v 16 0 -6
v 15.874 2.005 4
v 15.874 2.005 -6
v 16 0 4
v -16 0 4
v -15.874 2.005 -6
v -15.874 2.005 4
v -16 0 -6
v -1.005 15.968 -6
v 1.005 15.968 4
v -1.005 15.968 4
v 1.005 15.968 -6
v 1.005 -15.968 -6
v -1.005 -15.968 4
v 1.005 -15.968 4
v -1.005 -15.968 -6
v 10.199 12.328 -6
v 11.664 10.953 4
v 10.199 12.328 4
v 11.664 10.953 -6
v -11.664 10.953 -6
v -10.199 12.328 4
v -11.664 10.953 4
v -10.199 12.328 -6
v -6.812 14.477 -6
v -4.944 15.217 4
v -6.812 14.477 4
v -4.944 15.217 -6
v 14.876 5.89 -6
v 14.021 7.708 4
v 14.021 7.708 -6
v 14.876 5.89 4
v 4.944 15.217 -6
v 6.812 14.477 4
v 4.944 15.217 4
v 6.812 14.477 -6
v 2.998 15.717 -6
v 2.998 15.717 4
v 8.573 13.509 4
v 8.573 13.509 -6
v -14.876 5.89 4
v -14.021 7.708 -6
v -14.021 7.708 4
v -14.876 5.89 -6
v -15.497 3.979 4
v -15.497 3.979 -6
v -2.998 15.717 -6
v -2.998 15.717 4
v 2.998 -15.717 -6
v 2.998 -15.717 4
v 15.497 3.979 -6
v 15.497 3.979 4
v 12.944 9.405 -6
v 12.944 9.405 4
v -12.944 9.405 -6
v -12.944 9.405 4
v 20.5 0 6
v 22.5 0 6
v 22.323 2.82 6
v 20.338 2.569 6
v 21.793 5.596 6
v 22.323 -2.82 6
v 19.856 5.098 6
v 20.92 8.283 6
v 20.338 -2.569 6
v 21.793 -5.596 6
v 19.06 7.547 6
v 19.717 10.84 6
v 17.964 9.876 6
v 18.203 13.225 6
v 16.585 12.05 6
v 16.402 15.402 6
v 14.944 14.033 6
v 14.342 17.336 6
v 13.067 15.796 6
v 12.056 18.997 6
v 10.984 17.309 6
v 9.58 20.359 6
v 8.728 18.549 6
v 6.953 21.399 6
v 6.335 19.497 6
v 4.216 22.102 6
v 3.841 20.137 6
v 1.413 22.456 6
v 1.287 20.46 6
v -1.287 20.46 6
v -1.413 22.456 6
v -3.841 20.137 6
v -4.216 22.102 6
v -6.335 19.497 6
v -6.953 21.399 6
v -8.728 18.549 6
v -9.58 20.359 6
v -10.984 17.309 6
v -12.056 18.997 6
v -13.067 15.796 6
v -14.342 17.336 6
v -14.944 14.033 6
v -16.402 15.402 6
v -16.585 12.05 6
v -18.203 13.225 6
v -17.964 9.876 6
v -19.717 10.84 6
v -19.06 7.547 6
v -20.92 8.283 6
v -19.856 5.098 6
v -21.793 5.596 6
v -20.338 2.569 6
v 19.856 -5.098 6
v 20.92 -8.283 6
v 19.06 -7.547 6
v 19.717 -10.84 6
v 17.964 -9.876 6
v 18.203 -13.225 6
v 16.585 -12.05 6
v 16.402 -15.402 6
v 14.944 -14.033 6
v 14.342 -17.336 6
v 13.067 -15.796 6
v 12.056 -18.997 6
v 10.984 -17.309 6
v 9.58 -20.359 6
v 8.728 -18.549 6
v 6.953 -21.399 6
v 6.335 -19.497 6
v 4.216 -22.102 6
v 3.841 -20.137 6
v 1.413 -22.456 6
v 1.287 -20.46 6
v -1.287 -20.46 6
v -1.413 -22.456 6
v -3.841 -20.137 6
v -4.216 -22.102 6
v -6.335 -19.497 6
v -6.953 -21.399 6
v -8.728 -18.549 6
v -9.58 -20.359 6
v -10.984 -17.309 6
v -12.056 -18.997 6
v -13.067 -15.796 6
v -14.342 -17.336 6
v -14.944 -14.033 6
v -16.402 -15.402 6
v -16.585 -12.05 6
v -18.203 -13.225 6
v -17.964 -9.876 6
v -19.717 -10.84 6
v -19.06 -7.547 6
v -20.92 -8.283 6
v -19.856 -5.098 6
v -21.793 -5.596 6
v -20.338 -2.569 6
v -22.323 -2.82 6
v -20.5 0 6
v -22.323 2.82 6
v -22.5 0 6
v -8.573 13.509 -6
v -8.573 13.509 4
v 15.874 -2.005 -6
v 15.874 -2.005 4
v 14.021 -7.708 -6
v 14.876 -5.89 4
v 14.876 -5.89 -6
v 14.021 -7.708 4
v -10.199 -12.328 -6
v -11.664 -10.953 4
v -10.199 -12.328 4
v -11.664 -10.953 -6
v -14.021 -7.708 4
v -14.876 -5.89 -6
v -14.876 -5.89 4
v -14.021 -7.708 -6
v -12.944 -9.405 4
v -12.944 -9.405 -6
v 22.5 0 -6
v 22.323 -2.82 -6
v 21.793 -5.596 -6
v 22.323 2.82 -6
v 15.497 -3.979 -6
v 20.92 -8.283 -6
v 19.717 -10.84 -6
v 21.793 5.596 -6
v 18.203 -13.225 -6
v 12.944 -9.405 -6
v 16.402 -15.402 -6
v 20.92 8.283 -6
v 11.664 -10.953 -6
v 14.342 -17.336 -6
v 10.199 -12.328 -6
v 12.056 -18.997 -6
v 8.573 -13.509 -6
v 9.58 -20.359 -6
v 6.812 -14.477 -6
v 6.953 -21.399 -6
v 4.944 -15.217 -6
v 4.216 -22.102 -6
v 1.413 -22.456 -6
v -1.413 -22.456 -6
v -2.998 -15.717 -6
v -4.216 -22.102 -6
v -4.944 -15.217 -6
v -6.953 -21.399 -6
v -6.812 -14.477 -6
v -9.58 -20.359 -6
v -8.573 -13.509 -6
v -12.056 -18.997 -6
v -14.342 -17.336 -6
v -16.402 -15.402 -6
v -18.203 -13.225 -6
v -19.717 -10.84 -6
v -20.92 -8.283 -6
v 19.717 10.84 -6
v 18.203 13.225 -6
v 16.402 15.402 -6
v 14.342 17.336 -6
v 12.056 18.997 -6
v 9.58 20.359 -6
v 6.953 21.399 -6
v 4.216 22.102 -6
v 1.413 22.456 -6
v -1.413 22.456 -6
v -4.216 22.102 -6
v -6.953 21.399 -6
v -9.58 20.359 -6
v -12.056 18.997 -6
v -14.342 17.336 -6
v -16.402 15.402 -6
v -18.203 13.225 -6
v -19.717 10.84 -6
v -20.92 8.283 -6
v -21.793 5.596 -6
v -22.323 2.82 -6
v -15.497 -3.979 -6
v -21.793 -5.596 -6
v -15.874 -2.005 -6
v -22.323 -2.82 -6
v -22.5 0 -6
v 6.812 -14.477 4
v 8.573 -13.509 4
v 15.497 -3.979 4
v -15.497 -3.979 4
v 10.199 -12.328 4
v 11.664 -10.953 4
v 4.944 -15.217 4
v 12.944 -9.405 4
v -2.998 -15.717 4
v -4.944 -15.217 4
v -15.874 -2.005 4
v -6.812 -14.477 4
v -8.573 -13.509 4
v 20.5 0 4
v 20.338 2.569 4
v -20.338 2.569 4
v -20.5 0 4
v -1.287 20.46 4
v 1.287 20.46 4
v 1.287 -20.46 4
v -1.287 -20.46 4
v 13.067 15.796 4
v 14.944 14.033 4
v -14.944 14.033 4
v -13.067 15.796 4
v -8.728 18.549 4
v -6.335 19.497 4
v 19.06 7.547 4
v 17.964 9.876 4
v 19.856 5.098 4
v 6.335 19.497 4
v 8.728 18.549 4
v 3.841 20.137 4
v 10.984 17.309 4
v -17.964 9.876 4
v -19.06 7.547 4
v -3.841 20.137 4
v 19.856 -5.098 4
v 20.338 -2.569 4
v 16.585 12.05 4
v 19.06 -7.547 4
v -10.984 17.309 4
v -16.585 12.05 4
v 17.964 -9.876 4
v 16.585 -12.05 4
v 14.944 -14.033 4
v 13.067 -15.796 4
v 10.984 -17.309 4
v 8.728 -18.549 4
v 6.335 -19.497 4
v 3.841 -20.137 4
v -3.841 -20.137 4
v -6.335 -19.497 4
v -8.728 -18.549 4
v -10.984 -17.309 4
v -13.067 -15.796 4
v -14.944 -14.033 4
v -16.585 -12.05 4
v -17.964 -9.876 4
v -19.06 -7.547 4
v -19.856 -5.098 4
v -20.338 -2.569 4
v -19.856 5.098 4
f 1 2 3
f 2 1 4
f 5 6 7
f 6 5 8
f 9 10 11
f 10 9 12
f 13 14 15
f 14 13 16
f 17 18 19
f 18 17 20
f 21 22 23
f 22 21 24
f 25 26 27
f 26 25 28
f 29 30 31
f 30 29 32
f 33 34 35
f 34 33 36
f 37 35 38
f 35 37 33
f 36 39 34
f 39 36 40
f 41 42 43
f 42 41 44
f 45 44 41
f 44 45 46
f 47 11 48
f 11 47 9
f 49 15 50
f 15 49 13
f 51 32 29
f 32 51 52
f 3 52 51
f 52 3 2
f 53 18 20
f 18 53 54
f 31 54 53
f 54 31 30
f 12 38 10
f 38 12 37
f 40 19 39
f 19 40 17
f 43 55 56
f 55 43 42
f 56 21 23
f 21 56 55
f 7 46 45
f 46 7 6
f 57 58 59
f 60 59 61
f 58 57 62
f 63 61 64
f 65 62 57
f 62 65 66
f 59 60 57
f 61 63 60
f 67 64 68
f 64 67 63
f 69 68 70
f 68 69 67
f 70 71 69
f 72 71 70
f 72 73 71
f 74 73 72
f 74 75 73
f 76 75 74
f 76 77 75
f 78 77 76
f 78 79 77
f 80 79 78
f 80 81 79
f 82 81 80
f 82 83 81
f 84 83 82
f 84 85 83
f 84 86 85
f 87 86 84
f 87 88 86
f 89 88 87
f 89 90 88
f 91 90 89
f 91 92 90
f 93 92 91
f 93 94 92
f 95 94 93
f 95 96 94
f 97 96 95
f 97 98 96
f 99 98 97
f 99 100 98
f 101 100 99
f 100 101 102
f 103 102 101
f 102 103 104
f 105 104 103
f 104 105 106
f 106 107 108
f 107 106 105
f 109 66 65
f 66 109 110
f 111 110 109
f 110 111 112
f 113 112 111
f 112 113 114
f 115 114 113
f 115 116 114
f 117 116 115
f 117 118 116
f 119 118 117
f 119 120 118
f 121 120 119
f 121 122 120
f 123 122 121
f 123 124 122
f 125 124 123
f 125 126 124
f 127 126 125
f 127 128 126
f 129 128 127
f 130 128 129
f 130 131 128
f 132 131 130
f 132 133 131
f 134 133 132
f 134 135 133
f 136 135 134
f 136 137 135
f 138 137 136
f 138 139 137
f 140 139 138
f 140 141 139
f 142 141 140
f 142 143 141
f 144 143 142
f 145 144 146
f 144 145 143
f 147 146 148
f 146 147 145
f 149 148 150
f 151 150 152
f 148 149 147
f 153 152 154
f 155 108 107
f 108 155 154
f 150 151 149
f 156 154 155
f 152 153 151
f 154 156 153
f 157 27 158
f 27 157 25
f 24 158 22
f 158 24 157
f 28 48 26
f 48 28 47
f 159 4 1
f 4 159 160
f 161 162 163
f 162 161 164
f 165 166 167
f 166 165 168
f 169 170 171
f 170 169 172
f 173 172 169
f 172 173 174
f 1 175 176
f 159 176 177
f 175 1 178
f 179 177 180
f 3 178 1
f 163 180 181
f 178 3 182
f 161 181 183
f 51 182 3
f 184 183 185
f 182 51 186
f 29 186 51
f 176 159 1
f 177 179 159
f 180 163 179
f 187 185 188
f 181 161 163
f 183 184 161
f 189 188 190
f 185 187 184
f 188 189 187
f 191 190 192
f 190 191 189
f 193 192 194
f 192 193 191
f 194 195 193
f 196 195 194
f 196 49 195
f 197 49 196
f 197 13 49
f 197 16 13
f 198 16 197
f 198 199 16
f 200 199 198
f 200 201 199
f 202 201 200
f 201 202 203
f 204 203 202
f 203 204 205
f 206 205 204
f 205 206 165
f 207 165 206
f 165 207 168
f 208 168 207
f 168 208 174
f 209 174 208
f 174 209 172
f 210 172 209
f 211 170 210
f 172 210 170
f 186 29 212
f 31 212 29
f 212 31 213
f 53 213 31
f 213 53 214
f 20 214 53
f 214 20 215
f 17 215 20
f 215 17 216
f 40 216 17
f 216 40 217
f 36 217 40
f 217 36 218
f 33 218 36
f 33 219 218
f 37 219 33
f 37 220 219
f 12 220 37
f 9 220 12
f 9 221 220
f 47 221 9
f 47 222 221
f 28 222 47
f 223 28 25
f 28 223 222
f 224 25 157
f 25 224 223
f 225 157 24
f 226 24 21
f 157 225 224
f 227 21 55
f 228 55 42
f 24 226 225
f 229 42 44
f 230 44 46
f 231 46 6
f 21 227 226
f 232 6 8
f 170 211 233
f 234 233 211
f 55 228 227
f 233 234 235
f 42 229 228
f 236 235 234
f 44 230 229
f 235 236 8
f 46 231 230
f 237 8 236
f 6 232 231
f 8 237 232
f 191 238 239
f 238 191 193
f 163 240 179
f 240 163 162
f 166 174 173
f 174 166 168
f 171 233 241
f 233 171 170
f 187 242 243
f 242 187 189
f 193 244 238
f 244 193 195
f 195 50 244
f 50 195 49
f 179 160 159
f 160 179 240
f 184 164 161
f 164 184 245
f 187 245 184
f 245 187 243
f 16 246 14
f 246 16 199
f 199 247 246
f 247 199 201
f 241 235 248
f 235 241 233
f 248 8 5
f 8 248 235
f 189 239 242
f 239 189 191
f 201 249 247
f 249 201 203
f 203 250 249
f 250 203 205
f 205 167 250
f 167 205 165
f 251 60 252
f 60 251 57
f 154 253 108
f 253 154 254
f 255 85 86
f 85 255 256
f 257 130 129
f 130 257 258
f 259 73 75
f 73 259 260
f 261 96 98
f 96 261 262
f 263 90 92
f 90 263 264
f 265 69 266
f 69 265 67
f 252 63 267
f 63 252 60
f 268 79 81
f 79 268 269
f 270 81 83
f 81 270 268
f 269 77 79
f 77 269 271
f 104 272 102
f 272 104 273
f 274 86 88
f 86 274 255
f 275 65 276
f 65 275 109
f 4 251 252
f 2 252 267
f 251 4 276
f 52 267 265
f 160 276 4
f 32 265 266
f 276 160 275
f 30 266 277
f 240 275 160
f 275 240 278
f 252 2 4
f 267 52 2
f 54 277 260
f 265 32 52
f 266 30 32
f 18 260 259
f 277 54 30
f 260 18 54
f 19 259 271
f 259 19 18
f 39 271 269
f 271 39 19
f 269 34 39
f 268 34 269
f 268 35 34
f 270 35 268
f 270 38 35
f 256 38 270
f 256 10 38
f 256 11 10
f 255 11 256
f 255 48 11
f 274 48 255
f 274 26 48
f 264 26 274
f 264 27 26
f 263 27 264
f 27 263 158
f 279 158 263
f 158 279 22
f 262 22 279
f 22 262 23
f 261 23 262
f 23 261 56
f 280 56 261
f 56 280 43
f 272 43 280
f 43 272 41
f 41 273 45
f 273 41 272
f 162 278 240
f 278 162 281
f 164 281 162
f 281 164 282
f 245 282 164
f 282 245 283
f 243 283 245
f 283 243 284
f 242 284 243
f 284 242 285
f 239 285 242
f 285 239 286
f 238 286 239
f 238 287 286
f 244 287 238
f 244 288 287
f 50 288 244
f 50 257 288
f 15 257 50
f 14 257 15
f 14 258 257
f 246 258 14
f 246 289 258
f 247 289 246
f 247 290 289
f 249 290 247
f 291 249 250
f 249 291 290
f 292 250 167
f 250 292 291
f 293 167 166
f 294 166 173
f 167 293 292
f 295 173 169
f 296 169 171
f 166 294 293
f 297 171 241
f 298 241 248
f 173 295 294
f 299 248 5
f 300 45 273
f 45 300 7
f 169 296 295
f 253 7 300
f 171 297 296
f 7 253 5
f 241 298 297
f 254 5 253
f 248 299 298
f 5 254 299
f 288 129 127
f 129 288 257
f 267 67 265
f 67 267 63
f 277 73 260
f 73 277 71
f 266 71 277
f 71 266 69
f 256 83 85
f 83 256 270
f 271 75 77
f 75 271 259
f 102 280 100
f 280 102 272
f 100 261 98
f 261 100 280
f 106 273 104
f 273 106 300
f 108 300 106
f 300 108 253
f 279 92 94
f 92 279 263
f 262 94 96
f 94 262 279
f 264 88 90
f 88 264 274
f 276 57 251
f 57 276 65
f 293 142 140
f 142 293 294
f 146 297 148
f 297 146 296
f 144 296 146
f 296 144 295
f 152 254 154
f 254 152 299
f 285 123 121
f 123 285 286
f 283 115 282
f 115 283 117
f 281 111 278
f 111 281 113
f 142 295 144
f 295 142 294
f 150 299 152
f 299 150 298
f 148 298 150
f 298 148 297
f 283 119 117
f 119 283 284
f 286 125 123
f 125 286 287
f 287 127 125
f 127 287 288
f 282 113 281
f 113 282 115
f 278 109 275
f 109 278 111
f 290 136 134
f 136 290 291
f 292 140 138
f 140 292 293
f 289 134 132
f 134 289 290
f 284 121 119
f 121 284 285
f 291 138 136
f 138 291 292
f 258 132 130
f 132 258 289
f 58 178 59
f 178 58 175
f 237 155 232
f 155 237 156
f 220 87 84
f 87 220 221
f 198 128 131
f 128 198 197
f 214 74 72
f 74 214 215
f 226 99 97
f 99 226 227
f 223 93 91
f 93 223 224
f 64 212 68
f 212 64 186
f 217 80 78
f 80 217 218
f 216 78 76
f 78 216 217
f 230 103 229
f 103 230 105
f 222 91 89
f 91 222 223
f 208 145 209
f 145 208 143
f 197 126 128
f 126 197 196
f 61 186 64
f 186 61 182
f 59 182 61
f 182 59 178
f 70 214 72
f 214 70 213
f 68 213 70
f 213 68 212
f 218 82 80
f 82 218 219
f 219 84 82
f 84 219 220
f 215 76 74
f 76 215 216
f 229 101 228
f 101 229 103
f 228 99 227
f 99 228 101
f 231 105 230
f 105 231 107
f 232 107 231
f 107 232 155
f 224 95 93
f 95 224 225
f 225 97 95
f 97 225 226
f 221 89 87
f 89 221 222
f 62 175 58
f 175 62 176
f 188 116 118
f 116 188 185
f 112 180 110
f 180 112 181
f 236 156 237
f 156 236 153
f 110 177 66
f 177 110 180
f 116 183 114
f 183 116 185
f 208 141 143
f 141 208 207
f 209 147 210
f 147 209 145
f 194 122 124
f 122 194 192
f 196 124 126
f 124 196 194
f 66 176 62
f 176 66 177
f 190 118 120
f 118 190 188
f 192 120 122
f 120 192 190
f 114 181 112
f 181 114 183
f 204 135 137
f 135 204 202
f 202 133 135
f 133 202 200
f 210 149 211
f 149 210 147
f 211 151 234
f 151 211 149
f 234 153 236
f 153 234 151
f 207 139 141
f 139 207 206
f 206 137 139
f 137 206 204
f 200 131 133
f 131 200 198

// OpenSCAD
$fn = 50;


difference() {
	union() {
		translate(v = [0, 0, -6.0000000000]) {
			cylinder(h = 12, r = 22.5000000000);
		}
	}
	union() {
		#translate(v = [0, 0, -6.0000000000]) {
			cylinder(h = 12, r = 16.0000000000);
		}
		translate(v = [0, 0, 4.0000000000]) {
			cylinder(h = 2, r = 20.5000000000);
		}
	}
}
